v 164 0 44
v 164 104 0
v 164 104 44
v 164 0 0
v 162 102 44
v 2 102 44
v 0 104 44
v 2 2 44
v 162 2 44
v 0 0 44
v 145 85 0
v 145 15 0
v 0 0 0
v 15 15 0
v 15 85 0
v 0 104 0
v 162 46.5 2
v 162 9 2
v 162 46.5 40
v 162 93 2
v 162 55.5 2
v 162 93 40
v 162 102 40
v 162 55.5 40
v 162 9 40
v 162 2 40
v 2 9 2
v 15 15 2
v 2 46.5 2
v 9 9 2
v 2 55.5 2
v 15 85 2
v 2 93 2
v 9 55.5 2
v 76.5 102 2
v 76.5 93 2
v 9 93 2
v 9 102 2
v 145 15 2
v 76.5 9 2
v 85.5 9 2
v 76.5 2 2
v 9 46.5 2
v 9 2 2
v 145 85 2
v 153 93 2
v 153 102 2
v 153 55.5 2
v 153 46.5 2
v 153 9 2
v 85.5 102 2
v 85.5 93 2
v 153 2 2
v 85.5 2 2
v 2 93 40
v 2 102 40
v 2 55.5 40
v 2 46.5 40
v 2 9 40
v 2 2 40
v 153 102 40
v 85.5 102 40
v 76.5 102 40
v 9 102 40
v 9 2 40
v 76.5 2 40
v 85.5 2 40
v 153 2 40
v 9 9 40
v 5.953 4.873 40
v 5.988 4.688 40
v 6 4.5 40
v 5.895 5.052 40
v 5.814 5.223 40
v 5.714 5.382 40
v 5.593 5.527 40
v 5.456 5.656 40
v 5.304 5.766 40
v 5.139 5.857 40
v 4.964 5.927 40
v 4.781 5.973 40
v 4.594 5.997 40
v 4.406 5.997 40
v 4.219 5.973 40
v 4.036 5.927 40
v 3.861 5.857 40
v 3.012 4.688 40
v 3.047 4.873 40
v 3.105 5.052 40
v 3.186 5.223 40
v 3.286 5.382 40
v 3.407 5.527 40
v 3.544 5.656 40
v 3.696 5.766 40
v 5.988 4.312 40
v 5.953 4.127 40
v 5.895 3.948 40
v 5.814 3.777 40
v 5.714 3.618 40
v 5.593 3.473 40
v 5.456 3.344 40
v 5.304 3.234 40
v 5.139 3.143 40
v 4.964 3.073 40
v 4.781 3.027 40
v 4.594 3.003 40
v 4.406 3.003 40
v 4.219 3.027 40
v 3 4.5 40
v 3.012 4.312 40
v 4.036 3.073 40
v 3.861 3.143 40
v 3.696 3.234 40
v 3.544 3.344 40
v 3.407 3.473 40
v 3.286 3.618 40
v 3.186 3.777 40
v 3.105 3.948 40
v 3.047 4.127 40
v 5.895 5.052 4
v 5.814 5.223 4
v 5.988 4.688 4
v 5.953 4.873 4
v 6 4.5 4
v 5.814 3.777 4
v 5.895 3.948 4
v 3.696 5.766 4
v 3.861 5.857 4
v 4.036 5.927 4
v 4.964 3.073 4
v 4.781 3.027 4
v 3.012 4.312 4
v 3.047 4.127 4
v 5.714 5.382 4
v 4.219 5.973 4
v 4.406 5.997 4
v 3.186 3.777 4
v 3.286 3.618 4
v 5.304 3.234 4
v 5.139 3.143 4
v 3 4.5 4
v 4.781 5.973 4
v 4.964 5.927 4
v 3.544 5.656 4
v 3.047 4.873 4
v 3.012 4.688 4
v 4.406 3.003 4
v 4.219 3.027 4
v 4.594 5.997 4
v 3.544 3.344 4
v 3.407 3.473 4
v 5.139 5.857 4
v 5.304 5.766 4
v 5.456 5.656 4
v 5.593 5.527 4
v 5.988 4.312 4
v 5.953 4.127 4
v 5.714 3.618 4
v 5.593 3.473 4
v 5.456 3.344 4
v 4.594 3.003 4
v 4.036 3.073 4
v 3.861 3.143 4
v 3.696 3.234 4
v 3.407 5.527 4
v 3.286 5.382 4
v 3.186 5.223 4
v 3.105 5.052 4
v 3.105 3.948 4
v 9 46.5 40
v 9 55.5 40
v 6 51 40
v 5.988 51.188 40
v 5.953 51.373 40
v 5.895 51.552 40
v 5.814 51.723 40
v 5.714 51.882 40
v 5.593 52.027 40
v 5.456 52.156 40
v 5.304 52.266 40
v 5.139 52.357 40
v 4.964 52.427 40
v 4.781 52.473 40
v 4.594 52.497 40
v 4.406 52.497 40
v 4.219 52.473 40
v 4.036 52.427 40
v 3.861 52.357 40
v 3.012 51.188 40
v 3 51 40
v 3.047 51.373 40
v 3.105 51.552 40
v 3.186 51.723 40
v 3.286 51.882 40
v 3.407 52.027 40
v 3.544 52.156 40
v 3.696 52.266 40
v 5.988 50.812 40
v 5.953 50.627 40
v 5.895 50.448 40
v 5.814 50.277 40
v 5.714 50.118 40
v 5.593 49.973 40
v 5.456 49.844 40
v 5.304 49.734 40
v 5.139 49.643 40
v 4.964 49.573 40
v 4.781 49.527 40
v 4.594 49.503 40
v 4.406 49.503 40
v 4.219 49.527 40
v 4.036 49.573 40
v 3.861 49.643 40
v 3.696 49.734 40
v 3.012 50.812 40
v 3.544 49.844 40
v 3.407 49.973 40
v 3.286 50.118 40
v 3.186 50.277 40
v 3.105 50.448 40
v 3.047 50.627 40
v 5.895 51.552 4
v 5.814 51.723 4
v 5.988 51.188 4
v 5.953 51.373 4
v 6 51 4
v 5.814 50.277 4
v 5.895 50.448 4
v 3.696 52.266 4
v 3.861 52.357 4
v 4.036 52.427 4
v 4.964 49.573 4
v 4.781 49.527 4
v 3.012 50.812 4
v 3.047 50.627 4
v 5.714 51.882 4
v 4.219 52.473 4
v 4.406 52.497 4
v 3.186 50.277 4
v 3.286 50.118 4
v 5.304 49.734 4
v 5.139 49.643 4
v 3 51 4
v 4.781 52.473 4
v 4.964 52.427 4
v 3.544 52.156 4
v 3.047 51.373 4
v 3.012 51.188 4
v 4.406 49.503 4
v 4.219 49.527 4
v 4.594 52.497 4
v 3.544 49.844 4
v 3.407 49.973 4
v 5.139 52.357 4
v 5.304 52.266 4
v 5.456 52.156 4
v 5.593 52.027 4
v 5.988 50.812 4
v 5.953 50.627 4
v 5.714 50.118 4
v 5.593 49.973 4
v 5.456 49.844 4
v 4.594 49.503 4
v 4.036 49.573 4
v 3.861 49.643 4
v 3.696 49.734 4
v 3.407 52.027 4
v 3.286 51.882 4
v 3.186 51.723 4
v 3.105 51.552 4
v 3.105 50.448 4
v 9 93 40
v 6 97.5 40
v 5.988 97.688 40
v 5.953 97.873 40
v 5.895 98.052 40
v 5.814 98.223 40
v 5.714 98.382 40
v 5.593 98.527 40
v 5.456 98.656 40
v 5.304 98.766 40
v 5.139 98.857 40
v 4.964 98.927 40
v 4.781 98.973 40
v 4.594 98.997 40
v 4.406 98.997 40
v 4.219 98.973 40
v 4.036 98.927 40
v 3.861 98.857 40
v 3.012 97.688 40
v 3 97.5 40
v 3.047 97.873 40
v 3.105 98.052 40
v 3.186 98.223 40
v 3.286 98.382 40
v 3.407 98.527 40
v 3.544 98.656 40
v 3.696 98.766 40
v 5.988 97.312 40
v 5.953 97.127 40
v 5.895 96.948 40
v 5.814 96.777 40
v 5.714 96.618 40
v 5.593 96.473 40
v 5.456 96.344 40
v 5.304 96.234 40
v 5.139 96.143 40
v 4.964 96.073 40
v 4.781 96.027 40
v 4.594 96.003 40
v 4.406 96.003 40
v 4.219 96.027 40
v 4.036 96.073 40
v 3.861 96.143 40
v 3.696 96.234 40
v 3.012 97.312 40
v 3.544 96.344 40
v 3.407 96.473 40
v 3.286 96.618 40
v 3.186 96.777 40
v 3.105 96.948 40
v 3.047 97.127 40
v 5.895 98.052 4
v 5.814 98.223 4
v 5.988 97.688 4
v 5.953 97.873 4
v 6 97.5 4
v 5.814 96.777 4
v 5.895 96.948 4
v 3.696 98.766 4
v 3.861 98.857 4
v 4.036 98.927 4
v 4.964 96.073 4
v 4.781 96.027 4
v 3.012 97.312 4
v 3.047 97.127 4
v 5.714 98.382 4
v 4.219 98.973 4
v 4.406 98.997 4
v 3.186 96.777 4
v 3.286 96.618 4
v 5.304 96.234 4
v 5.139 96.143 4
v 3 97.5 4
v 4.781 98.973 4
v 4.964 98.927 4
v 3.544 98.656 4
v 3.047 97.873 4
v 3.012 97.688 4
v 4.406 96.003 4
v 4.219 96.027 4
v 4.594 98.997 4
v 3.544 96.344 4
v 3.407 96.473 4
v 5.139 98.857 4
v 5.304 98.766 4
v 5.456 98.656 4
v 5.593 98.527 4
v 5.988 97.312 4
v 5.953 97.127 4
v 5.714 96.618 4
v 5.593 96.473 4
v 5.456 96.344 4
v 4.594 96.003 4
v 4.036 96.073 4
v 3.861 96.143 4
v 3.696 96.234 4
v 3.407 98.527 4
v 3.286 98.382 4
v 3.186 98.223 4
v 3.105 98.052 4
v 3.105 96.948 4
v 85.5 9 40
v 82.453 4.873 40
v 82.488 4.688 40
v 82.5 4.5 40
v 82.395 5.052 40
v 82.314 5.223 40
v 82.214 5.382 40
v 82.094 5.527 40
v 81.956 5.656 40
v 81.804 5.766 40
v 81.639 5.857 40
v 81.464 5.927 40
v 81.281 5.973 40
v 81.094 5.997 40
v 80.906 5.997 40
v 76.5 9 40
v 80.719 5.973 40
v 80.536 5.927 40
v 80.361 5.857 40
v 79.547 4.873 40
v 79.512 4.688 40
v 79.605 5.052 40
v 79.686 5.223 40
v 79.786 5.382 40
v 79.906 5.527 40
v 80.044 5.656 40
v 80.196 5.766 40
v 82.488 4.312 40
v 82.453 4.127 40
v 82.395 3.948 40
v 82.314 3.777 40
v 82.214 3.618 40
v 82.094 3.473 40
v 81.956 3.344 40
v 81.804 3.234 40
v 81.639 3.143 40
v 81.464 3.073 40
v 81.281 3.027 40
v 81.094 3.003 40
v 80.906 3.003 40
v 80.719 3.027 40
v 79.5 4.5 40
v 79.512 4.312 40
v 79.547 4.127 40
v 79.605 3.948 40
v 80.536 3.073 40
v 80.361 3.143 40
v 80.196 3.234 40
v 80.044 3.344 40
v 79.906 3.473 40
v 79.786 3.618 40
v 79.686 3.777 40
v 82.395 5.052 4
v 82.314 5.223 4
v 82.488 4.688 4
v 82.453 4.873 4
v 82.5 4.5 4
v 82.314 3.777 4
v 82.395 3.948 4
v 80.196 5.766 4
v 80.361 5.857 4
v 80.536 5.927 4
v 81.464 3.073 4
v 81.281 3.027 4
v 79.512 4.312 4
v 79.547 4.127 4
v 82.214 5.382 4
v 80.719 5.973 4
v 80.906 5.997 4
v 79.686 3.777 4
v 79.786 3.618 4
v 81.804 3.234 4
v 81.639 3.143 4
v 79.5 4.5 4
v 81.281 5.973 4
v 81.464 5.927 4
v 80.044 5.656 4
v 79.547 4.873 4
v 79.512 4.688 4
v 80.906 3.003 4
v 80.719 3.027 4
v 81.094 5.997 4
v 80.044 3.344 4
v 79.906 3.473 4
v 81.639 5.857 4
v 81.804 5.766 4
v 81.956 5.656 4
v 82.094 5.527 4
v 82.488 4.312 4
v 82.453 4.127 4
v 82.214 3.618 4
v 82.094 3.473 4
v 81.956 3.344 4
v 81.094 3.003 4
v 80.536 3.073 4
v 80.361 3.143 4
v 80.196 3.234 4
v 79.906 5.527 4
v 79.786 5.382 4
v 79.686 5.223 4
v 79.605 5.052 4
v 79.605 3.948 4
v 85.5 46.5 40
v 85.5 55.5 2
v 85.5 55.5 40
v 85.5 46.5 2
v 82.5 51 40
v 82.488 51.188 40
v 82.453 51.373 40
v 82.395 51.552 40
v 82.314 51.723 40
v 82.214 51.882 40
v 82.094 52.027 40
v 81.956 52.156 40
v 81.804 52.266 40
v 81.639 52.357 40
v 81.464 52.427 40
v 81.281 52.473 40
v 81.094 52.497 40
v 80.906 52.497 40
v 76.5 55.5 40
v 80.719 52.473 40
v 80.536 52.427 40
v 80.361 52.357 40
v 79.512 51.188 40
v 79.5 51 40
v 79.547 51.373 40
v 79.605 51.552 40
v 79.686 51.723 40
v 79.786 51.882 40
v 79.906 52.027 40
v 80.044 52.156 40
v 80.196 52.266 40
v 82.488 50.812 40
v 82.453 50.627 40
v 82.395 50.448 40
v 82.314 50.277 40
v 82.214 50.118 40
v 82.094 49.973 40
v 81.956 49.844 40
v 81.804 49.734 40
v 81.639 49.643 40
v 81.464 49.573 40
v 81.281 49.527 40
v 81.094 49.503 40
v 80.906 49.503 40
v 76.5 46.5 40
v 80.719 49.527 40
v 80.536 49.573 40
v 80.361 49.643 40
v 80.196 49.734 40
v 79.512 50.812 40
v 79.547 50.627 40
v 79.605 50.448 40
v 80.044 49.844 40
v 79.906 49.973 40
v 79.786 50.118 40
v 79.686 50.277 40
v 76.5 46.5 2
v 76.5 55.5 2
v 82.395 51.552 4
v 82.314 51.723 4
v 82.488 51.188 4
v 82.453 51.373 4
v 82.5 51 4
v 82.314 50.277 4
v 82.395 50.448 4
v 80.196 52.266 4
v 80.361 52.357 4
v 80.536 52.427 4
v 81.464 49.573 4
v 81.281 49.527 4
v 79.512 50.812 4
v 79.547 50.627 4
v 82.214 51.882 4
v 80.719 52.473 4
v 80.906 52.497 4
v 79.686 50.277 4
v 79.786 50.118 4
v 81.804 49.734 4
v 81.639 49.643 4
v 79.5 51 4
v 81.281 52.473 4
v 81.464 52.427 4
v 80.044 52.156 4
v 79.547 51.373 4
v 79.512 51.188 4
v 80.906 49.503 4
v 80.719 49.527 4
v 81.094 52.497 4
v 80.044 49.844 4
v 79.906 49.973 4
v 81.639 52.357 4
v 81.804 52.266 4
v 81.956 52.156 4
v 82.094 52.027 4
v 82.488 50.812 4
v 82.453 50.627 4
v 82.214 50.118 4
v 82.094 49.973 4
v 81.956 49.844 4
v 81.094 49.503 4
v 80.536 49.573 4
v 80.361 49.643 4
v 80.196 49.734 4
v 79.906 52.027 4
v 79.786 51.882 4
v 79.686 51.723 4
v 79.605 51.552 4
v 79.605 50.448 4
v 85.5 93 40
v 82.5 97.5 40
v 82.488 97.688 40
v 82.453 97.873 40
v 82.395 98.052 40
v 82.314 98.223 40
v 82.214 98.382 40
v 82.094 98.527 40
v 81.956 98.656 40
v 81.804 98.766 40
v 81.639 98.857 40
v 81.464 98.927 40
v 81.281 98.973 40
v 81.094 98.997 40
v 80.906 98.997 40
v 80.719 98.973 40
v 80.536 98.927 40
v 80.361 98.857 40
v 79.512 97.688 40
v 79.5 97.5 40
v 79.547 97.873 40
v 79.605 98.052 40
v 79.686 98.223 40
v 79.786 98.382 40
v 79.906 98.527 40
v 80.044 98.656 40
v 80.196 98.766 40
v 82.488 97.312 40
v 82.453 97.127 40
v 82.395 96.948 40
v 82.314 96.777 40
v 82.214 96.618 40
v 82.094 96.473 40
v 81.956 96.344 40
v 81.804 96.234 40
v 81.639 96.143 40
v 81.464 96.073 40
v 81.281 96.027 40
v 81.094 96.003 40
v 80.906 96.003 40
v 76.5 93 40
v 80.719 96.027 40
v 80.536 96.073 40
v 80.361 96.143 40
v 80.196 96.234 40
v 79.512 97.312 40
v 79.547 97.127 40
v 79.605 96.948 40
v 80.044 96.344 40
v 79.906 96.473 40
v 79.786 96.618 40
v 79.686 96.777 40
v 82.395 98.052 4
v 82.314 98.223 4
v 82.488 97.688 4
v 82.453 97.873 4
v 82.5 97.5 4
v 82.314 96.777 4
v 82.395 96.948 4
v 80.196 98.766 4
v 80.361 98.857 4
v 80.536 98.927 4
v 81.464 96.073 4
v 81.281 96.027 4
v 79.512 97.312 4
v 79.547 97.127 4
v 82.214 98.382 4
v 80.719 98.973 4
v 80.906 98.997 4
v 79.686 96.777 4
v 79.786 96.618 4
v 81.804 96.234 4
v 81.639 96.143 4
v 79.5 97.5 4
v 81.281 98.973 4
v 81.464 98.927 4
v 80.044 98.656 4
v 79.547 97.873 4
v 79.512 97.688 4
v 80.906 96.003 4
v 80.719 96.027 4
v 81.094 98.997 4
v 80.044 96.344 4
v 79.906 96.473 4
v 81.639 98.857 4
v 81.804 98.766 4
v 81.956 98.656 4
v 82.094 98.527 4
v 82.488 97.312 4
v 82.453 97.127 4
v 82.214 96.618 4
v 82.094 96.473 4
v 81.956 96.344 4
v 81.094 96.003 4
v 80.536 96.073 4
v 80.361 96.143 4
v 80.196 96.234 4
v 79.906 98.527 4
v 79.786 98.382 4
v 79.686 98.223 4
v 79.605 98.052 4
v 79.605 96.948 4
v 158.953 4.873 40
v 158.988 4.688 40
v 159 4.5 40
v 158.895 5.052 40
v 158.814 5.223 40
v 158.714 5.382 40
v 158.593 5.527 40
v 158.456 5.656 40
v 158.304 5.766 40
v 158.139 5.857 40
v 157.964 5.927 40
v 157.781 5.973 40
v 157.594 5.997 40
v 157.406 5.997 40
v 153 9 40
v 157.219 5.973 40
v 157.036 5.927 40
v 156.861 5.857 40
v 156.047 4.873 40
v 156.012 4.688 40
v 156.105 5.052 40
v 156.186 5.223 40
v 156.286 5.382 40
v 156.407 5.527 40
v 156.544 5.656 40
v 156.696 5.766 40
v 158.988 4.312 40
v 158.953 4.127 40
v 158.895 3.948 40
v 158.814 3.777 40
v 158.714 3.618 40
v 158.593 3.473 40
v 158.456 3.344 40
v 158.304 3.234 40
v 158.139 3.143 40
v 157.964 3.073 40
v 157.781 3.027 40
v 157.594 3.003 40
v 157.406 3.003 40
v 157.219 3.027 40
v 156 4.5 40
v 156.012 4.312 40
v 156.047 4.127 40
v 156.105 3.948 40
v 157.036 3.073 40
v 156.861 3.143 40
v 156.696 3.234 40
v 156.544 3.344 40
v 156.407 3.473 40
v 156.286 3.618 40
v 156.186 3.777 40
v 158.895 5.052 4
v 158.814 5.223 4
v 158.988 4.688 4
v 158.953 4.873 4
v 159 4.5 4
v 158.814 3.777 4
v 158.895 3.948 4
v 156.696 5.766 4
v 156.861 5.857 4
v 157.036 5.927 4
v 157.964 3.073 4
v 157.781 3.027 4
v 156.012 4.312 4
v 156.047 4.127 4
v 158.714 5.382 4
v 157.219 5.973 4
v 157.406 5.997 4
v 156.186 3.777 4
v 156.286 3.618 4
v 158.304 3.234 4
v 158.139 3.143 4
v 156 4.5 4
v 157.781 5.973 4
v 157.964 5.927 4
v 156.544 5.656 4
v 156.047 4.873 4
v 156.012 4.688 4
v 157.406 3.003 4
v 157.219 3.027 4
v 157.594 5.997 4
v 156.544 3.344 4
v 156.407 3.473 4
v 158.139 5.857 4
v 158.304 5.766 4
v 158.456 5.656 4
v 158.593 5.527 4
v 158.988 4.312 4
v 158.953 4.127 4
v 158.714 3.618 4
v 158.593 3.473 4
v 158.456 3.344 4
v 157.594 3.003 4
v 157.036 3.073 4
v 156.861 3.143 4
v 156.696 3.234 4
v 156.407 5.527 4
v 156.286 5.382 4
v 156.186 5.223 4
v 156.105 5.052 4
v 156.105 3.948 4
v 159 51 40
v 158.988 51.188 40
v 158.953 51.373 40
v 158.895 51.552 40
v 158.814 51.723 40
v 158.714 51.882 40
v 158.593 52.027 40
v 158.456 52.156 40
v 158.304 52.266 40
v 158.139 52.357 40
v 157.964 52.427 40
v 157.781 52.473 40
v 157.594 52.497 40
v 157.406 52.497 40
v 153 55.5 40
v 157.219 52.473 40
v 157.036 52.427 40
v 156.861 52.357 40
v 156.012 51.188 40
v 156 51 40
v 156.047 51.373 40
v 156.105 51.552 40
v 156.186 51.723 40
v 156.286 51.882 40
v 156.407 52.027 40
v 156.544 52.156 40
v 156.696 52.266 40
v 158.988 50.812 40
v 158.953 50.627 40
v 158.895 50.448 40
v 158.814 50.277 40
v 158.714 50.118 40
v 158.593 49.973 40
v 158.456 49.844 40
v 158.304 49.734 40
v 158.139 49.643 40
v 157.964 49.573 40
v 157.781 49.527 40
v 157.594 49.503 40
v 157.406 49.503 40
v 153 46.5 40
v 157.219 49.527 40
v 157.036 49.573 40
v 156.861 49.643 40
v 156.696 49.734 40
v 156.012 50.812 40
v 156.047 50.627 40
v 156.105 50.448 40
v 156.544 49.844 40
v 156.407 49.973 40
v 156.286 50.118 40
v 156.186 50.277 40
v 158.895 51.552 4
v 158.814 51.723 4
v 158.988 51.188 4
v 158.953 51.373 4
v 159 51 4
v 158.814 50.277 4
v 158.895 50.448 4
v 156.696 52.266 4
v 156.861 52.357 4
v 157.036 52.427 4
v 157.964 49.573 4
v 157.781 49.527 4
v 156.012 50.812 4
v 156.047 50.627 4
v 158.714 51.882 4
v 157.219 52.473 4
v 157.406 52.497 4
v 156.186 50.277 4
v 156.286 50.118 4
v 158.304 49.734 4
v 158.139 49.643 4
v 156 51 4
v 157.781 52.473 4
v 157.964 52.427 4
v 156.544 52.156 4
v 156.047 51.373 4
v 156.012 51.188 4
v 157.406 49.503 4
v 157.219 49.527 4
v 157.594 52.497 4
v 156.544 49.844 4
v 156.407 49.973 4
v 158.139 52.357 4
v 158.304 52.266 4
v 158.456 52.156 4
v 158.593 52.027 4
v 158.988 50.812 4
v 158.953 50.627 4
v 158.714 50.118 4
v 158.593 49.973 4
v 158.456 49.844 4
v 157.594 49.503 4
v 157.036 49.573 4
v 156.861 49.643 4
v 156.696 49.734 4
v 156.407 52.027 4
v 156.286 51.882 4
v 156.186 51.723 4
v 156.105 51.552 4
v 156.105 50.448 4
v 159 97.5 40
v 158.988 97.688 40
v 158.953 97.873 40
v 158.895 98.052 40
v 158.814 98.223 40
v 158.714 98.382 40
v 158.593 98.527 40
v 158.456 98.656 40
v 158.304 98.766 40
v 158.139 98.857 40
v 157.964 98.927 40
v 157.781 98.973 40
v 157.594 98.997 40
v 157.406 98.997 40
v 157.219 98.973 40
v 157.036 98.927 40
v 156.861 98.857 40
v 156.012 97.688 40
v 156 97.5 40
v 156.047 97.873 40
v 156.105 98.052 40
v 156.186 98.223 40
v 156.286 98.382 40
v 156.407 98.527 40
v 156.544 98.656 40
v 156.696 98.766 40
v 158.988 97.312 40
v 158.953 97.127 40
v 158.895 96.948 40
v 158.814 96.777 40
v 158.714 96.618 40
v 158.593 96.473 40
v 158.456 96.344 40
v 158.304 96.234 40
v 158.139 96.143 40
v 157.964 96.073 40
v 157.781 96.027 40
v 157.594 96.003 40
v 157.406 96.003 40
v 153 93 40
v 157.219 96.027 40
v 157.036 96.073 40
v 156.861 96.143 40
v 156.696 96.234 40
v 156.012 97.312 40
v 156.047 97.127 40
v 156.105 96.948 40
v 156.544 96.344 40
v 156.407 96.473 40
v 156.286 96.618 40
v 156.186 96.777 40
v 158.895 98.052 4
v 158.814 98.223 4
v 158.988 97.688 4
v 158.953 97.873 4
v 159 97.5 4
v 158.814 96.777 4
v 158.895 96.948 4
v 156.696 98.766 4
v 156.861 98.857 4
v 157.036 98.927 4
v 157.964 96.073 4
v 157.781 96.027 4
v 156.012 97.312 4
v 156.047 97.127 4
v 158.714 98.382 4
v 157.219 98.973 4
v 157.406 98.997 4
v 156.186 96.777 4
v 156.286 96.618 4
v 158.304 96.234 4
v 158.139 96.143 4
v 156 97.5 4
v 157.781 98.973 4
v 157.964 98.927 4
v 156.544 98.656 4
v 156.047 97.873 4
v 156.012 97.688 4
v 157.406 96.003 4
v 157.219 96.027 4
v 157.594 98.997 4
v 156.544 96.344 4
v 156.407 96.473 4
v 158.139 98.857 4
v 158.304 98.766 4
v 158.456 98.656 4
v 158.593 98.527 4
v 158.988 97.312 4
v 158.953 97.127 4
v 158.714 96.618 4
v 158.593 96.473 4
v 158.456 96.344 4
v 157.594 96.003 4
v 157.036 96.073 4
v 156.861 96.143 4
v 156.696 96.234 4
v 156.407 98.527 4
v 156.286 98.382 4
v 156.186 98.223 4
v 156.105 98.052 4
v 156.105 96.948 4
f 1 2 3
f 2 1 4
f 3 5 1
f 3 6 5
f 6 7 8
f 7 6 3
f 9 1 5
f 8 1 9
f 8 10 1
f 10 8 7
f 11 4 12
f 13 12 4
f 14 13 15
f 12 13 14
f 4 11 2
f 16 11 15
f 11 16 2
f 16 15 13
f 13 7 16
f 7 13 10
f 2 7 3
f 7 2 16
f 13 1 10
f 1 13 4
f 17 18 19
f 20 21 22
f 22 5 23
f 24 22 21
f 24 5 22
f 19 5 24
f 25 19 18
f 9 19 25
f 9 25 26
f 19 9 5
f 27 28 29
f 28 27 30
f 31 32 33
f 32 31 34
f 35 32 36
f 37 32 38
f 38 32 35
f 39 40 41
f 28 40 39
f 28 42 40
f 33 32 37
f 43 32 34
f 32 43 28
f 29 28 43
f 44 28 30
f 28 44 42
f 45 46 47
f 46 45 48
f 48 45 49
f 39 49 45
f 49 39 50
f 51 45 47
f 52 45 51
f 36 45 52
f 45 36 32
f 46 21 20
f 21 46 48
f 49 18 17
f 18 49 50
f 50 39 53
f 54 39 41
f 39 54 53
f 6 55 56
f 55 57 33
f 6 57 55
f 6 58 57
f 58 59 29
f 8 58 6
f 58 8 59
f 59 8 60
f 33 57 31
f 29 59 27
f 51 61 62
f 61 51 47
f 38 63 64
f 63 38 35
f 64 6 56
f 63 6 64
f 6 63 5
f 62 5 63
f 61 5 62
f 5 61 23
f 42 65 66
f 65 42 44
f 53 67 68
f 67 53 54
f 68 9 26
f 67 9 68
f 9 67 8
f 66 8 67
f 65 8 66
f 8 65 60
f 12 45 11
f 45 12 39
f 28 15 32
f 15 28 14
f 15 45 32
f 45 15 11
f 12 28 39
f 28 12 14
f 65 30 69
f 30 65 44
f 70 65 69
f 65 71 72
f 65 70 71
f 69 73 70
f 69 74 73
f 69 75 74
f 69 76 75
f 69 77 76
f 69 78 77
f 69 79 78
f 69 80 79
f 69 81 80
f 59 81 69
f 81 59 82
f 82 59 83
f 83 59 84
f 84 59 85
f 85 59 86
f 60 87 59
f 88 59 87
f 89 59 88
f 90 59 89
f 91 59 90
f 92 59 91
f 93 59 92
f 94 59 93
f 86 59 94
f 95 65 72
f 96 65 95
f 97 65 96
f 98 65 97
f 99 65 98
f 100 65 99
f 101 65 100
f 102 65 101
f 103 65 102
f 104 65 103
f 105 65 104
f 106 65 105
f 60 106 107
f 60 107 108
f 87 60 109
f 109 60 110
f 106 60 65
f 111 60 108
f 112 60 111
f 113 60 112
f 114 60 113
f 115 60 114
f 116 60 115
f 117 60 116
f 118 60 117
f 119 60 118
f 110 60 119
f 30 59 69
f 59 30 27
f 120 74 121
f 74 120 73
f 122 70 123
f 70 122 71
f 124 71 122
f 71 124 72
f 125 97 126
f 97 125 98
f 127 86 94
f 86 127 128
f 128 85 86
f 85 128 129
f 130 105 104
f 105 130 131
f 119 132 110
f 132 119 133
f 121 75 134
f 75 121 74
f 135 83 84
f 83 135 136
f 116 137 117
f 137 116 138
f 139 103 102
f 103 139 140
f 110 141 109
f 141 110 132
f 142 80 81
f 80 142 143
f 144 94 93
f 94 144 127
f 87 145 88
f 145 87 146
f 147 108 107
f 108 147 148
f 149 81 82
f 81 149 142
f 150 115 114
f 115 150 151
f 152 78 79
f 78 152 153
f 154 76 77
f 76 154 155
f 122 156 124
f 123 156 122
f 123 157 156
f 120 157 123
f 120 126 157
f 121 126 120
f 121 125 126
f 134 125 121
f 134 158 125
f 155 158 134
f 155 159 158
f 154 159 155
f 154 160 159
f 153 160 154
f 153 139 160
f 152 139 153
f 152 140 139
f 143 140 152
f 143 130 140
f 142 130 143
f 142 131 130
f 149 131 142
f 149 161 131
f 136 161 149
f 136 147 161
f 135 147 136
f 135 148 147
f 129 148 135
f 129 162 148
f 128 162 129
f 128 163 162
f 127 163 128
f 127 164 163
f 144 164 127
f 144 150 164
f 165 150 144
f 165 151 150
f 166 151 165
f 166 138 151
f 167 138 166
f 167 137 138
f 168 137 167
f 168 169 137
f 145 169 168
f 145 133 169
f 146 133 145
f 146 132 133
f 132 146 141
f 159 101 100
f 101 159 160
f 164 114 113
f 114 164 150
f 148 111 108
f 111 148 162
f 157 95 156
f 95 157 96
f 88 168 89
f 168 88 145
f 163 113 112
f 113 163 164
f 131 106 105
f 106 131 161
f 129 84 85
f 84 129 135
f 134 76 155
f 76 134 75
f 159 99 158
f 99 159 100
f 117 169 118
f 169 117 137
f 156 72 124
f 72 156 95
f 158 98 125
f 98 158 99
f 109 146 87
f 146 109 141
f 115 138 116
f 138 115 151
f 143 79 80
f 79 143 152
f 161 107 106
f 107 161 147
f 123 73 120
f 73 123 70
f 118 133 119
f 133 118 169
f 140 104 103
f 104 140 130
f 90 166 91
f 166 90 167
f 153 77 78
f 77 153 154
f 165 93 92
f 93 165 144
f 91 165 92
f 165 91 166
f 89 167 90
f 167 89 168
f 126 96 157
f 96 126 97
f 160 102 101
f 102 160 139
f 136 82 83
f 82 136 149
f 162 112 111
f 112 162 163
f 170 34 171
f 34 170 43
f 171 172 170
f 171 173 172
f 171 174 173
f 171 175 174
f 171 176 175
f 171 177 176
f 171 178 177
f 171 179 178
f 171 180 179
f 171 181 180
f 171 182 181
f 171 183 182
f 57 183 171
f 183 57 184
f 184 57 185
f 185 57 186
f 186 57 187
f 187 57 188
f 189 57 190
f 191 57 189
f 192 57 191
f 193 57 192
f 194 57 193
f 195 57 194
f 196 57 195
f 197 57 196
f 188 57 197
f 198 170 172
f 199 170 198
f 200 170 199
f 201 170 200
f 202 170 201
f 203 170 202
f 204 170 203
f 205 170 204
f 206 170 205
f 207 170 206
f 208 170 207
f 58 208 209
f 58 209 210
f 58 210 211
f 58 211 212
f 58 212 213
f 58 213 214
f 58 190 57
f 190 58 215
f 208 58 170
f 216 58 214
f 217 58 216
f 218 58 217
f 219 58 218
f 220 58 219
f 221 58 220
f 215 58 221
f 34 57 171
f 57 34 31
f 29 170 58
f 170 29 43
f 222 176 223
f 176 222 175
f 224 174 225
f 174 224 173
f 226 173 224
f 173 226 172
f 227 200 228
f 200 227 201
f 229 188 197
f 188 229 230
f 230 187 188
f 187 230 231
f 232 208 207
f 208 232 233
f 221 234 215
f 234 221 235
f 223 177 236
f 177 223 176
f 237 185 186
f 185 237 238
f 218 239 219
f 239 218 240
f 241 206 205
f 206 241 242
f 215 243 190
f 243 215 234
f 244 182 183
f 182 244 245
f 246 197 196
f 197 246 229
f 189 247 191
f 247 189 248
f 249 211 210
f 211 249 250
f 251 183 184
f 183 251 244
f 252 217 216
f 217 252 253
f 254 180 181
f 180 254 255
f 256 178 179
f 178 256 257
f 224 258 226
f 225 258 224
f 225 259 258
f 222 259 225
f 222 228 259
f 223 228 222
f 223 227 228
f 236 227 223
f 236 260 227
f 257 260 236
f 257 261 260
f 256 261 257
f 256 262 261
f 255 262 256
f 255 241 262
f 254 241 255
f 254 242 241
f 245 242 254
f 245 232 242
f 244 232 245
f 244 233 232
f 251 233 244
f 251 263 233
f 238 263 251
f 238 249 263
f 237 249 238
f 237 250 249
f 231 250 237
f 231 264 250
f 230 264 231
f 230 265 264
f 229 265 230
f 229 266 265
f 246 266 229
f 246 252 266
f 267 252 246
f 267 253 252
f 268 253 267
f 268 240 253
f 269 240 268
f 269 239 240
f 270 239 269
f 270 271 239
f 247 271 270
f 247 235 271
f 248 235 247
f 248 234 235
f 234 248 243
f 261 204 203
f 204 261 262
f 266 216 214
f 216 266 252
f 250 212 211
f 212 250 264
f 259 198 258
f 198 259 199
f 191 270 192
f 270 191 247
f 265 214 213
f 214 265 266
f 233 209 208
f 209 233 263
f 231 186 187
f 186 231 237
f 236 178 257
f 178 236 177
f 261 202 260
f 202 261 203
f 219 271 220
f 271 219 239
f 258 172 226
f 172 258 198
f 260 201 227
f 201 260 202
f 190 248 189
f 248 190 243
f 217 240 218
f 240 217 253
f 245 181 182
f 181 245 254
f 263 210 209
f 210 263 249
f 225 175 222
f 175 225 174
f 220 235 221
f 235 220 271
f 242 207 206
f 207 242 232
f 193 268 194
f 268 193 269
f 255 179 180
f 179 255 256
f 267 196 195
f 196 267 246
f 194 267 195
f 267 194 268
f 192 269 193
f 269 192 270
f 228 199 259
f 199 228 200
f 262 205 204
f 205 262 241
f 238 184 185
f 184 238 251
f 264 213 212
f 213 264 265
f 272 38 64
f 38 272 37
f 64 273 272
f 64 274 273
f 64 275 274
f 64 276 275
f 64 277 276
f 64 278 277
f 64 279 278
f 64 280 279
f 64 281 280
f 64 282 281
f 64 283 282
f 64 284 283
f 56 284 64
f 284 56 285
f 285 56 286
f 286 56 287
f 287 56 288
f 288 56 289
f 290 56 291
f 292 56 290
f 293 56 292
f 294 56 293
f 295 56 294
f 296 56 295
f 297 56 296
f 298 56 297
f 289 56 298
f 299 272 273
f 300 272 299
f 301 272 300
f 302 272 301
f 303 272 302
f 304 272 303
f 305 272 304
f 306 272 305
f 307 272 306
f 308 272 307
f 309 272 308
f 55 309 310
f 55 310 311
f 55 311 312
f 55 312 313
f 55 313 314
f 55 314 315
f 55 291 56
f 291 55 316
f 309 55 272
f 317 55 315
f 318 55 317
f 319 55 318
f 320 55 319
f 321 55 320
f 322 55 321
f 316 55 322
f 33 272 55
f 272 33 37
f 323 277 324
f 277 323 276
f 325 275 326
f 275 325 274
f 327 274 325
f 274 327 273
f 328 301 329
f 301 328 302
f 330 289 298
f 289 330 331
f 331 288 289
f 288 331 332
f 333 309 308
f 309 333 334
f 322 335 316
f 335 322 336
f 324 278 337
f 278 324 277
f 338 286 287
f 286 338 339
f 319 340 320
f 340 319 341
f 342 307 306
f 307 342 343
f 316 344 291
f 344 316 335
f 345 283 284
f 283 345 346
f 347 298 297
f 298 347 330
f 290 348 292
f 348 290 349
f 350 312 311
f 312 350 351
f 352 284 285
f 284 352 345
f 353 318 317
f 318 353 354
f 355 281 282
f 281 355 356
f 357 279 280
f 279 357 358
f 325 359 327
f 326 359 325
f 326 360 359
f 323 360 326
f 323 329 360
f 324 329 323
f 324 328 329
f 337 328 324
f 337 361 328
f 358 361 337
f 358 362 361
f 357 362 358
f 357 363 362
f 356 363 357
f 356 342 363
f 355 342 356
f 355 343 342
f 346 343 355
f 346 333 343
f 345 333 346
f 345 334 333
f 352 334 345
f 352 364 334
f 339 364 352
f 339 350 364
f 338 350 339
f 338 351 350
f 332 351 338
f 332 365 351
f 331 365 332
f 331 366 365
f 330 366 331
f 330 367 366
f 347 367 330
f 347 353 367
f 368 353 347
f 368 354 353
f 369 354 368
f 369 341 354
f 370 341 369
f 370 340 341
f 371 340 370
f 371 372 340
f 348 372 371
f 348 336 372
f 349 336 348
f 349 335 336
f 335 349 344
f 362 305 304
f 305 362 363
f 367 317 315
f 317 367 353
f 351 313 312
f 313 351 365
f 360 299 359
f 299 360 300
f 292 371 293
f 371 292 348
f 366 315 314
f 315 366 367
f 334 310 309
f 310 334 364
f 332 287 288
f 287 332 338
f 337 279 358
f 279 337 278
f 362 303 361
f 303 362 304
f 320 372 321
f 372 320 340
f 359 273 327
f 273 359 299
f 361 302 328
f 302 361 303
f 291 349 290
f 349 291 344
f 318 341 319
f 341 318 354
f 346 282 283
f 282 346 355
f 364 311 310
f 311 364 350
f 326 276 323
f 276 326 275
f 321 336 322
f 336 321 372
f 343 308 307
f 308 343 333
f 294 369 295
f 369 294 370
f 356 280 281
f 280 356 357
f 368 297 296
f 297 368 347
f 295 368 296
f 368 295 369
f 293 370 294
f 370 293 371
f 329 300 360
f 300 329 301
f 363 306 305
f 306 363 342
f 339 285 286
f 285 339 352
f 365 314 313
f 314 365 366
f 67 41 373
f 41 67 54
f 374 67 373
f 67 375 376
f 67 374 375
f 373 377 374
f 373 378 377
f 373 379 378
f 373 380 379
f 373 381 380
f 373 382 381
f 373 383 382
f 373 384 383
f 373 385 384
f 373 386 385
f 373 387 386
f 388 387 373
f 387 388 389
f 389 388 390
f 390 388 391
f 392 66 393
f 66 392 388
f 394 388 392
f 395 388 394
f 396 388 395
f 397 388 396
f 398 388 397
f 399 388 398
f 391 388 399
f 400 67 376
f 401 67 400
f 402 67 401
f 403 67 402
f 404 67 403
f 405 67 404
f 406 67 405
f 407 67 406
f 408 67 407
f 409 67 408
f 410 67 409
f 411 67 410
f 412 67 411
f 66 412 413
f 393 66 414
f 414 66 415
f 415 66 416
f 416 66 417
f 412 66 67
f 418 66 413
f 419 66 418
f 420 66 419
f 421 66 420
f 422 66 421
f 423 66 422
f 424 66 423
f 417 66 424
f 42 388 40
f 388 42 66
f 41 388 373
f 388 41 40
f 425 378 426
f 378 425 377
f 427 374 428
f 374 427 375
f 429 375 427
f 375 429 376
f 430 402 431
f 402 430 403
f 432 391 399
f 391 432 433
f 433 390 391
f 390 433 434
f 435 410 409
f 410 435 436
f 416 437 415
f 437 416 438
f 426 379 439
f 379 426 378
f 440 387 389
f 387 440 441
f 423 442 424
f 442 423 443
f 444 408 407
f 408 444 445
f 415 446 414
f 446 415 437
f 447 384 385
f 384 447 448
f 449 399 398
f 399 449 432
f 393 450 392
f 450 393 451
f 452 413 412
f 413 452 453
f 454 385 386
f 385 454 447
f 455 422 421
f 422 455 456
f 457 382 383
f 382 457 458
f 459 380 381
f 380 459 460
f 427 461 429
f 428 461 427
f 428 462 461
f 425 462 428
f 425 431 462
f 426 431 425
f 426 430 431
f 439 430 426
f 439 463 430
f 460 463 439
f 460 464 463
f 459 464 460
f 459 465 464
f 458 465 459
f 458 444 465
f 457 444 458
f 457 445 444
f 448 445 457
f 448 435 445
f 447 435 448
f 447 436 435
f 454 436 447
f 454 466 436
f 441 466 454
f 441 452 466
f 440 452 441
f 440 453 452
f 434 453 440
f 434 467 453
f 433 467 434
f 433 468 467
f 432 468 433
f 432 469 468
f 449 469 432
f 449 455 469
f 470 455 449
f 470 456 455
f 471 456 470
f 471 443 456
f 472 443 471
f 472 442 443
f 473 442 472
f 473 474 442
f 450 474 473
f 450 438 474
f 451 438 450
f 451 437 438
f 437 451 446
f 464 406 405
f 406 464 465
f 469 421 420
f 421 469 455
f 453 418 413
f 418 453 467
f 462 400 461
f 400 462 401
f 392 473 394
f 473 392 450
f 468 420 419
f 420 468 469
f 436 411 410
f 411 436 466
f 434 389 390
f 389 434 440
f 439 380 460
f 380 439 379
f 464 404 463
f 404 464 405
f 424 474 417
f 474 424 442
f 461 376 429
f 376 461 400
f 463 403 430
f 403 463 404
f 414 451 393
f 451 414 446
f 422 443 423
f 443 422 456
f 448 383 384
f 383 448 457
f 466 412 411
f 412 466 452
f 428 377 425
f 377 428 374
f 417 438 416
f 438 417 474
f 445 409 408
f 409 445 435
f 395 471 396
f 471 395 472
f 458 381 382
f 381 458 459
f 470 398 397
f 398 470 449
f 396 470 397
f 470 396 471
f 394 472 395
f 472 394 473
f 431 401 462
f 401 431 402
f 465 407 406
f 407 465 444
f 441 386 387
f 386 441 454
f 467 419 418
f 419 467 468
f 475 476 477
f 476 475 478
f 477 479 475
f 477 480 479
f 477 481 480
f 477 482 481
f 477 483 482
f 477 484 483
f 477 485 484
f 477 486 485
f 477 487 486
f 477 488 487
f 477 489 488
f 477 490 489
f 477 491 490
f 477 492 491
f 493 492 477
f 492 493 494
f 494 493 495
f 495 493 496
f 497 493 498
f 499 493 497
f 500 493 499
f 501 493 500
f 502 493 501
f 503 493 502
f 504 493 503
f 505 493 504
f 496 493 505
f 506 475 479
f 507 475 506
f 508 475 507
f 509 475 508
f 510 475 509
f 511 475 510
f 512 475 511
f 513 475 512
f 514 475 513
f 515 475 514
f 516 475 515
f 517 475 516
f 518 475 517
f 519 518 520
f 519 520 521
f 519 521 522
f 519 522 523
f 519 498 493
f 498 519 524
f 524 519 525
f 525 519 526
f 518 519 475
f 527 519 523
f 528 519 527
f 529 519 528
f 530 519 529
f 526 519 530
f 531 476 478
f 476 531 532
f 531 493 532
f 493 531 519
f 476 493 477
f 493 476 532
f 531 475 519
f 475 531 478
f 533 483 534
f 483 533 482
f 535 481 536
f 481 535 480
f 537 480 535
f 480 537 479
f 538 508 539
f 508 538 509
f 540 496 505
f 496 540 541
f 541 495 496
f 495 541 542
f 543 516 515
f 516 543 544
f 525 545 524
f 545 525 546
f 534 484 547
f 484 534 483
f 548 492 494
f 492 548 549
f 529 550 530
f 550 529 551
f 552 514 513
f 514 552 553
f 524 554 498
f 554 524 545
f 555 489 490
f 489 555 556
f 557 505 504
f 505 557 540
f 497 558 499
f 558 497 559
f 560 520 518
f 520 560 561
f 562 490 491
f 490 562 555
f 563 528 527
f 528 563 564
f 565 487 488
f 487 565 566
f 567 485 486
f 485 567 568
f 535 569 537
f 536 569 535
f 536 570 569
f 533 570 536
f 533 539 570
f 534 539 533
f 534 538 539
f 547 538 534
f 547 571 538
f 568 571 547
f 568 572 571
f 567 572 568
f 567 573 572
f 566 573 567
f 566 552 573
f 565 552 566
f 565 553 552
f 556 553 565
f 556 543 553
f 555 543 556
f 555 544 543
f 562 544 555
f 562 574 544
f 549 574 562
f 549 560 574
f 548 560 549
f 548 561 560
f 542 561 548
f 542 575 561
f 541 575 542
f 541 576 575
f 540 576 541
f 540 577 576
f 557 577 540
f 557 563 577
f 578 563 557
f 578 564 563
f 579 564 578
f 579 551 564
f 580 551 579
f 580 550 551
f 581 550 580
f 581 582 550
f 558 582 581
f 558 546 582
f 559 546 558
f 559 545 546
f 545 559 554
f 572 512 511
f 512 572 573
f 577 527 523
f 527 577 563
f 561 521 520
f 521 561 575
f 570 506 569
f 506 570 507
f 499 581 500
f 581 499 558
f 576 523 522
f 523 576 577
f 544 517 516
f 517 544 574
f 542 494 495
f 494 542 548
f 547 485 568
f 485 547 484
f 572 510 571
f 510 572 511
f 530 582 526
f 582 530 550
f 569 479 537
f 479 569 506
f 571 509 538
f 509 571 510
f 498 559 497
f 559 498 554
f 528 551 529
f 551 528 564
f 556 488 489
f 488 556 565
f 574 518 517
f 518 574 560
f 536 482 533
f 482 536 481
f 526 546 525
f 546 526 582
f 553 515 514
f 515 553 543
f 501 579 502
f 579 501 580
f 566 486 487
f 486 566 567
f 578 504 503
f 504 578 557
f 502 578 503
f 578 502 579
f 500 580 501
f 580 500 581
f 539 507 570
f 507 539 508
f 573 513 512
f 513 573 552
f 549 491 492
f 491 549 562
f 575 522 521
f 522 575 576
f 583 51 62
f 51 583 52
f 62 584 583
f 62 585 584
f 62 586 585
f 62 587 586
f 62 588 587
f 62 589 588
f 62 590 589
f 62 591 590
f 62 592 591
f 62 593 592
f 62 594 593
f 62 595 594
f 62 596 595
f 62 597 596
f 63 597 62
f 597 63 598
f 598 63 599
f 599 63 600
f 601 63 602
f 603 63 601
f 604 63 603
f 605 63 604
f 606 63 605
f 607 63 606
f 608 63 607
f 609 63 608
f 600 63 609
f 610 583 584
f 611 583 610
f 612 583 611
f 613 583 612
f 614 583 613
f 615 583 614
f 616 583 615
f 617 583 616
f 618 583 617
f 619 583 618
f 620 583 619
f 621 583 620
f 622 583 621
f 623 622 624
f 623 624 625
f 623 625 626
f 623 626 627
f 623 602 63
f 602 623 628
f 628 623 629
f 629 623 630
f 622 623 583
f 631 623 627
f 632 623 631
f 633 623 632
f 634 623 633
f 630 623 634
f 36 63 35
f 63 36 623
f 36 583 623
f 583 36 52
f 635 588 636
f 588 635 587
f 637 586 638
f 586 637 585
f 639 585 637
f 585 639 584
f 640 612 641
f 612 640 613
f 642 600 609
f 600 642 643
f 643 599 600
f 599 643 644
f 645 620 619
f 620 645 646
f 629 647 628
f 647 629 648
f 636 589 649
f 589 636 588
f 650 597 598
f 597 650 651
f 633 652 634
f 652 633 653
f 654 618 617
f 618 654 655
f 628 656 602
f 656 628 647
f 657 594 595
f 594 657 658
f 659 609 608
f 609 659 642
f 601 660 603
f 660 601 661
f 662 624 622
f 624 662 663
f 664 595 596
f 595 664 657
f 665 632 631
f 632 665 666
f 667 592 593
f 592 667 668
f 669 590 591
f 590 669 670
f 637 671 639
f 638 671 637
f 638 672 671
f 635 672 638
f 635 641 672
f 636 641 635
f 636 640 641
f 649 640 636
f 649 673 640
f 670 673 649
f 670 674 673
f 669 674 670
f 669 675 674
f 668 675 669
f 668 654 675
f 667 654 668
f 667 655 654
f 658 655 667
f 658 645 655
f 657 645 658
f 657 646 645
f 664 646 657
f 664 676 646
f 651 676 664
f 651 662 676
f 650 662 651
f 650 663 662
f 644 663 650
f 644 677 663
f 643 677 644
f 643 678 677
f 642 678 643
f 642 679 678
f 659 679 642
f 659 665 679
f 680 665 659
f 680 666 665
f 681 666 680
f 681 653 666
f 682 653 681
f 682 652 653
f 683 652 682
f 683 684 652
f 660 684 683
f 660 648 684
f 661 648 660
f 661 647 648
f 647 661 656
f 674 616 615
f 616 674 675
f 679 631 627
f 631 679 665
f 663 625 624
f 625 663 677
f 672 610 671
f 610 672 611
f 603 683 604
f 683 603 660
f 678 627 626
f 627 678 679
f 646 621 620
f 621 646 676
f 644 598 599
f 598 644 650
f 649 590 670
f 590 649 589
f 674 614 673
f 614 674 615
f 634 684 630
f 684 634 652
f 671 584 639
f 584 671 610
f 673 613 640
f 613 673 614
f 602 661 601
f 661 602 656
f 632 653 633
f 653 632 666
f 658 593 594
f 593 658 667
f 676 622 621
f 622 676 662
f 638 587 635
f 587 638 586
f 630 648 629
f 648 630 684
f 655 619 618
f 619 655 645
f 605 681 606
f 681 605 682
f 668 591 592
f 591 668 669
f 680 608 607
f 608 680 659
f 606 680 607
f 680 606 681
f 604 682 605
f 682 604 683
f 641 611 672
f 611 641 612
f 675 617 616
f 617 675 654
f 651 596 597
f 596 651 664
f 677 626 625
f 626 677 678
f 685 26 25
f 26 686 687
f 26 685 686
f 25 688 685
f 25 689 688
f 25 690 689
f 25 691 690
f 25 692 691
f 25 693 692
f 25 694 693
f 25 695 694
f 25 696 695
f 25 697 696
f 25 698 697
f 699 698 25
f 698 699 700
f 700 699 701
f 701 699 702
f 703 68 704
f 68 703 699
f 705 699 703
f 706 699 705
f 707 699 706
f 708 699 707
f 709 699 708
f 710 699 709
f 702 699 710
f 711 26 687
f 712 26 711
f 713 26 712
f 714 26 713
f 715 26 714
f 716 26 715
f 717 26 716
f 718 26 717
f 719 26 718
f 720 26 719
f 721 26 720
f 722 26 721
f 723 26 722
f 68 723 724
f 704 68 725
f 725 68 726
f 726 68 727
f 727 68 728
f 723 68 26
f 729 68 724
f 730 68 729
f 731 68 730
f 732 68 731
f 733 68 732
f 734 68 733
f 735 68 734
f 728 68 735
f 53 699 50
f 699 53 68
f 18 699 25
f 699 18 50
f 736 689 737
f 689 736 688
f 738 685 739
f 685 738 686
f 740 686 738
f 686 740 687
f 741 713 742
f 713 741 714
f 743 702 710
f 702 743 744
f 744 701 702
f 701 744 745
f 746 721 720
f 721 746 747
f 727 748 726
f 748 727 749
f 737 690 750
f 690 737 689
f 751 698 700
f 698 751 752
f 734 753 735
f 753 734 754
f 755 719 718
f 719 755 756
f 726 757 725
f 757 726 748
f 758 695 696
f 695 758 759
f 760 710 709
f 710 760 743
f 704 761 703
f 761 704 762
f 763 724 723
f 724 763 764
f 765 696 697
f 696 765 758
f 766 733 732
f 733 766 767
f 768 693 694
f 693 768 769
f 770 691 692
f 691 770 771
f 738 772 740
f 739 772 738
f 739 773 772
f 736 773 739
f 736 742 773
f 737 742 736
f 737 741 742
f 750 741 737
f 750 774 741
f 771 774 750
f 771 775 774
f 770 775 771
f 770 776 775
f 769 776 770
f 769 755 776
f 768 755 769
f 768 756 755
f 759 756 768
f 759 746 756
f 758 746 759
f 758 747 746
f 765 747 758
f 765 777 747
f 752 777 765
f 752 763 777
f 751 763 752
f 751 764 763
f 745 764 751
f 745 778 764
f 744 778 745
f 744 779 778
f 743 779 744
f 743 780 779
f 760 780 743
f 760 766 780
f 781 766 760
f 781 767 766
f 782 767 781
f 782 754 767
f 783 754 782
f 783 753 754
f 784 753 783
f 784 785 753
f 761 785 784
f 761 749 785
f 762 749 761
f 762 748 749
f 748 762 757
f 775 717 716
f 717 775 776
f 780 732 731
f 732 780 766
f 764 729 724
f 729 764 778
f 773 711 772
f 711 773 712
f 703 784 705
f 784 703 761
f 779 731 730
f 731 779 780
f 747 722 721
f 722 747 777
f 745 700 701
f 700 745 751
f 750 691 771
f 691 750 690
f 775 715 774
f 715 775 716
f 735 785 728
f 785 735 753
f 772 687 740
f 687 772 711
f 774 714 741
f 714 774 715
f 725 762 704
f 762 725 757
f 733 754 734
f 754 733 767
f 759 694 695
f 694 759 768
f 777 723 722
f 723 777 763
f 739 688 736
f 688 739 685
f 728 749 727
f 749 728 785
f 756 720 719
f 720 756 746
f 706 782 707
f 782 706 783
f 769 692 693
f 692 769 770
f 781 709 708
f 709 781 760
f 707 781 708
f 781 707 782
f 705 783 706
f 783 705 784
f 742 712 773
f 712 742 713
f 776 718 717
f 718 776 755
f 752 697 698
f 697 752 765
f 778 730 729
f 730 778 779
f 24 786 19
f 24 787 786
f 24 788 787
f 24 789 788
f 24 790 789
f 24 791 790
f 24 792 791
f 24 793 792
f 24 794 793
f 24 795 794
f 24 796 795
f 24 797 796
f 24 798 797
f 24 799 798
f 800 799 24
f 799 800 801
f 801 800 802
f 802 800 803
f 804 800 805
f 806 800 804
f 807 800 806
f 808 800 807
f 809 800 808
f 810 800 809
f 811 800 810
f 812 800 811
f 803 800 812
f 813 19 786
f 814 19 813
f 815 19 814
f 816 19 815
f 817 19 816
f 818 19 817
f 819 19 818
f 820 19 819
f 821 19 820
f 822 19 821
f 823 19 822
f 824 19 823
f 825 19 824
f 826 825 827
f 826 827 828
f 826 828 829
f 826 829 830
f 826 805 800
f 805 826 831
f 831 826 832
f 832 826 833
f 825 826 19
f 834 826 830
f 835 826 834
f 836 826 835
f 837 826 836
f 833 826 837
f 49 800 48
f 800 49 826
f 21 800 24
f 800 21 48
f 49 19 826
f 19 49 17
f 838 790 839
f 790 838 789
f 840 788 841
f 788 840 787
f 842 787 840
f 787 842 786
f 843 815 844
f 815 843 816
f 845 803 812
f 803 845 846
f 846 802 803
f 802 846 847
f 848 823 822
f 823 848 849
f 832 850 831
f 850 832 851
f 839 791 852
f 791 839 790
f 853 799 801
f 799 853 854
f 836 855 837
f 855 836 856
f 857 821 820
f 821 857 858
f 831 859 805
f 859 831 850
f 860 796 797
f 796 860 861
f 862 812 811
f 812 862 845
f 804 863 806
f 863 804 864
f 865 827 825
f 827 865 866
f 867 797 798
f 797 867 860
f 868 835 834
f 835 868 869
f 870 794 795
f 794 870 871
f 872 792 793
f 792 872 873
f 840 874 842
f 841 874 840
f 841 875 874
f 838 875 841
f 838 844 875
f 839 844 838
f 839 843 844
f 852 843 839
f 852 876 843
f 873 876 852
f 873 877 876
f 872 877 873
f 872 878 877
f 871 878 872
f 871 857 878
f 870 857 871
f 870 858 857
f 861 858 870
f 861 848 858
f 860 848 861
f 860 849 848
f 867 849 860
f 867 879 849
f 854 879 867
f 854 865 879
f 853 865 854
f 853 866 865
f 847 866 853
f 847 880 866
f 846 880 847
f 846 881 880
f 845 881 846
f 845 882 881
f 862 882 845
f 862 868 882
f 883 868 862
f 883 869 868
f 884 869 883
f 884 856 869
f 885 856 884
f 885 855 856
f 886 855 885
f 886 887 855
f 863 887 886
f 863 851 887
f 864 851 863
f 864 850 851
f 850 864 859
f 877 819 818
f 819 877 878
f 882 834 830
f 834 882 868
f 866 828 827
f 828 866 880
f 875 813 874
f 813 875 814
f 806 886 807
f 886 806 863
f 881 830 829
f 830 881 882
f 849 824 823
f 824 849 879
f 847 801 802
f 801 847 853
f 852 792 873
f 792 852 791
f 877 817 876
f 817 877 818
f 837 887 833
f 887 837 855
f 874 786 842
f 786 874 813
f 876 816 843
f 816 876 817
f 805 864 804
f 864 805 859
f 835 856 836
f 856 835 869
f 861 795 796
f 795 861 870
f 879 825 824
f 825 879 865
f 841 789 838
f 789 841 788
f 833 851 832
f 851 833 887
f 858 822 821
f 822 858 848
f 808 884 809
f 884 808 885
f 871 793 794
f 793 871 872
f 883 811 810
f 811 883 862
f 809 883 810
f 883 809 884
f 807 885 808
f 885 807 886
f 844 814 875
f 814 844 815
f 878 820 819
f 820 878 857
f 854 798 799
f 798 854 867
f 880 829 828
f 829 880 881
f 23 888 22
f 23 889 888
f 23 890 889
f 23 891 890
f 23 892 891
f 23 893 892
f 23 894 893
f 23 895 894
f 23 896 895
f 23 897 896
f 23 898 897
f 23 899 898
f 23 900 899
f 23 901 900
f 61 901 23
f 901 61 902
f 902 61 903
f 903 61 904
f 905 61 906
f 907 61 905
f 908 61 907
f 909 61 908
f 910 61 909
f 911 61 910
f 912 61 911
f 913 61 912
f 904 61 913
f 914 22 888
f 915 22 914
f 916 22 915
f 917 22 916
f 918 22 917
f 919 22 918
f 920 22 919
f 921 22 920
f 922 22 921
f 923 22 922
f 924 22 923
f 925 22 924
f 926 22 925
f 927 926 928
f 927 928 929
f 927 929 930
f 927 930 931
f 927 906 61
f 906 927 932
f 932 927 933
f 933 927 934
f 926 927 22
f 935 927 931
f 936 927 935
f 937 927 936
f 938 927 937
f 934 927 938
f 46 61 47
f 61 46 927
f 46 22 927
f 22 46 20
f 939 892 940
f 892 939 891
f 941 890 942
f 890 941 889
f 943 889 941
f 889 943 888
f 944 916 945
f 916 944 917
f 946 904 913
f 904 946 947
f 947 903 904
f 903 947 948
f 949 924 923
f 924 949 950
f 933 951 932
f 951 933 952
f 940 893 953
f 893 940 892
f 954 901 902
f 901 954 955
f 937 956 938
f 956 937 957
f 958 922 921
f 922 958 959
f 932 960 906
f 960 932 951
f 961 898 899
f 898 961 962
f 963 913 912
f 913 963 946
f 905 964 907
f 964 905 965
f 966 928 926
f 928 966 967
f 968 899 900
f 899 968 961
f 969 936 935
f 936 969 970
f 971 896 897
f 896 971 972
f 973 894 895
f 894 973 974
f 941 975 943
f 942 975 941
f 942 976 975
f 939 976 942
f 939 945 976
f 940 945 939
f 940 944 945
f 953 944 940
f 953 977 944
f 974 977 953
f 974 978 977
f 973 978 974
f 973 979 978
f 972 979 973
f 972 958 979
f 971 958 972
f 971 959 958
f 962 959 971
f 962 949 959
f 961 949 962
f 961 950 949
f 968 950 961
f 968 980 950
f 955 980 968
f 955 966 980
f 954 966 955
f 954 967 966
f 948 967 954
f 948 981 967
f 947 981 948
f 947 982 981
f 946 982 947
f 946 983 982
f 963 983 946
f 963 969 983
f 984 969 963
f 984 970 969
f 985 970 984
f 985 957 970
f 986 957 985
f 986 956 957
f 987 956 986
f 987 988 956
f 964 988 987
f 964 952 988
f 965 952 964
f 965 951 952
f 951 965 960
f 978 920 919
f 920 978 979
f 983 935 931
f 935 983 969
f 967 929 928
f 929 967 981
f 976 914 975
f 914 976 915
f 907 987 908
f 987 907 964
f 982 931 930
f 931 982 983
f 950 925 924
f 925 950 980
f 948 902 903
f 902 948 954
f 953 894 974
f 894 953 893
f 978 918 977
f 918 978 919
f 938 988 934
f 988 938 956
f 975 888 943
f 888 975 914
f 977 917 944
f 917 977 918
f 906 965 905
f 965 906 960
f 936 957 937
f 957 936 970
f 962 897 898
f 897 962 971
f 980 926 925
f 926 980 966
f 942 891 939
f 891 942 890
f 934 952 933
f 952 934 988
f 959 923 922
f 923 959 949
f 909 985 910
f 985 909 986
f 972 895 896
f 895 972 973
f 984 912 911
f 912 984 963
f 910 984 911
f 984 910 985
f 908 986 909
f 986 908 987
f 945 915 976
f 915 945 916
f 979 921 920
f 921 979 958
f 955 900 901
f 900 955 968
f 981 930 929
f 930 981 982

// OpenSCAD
$fn=50;
BASE_X = 160;
BASE_Y = 100;
BASE_Z = 40;
WALL=2;
CHUNK=9;

module p1() {
    difference() {
        cube([BASE_X+2*WALL, BASE_Y+2*WALL,BASE_Z+2*WALL]);
        translate([WALL,WALL,WALL]) cube([BASE_X, BASE_Y,BASE_Z+WALL+1]);
        FILB=15;
        translate([FILB,FILB,0]) cube([BASE_X-2*FILB,BASE_Y-2*FILB,WALL]);
    }
//    for (i=[0,1], j=[0,1]) {
//        translate([(BASE_X*i)+WALL-(CHUNK*i),(BASE_Y*j)+WALL-(CHUNK*j),WALL]) {
//            difference() {
//                cube([CHUNK,CHUNK,BASE_Z-WALL]);
//                translate([CHUNK/2,CHUNK/2,WALL]) cylinder(BASE_Z, d=3);
//            }
//        }
//    }
    for (i=[-1:1:1], j=[-1:1:1]) {
        echo(i,j);
        qx=(BASE_X+WALL-CHUNK)/2;
        qy=(BASE_Y+WALL-CHUNK)/2;
        translate([qx+qx*i,qy+qy*j,WALL]) {
            difference() {
                #cube([CHUNK,CHUNK,BASE_Z-WALL]);
                translate([CHUNK/2,CHUNK/2,WALL]) cylinder(BASE_Z, d=3);
            }
        }
    }

}

p1();
